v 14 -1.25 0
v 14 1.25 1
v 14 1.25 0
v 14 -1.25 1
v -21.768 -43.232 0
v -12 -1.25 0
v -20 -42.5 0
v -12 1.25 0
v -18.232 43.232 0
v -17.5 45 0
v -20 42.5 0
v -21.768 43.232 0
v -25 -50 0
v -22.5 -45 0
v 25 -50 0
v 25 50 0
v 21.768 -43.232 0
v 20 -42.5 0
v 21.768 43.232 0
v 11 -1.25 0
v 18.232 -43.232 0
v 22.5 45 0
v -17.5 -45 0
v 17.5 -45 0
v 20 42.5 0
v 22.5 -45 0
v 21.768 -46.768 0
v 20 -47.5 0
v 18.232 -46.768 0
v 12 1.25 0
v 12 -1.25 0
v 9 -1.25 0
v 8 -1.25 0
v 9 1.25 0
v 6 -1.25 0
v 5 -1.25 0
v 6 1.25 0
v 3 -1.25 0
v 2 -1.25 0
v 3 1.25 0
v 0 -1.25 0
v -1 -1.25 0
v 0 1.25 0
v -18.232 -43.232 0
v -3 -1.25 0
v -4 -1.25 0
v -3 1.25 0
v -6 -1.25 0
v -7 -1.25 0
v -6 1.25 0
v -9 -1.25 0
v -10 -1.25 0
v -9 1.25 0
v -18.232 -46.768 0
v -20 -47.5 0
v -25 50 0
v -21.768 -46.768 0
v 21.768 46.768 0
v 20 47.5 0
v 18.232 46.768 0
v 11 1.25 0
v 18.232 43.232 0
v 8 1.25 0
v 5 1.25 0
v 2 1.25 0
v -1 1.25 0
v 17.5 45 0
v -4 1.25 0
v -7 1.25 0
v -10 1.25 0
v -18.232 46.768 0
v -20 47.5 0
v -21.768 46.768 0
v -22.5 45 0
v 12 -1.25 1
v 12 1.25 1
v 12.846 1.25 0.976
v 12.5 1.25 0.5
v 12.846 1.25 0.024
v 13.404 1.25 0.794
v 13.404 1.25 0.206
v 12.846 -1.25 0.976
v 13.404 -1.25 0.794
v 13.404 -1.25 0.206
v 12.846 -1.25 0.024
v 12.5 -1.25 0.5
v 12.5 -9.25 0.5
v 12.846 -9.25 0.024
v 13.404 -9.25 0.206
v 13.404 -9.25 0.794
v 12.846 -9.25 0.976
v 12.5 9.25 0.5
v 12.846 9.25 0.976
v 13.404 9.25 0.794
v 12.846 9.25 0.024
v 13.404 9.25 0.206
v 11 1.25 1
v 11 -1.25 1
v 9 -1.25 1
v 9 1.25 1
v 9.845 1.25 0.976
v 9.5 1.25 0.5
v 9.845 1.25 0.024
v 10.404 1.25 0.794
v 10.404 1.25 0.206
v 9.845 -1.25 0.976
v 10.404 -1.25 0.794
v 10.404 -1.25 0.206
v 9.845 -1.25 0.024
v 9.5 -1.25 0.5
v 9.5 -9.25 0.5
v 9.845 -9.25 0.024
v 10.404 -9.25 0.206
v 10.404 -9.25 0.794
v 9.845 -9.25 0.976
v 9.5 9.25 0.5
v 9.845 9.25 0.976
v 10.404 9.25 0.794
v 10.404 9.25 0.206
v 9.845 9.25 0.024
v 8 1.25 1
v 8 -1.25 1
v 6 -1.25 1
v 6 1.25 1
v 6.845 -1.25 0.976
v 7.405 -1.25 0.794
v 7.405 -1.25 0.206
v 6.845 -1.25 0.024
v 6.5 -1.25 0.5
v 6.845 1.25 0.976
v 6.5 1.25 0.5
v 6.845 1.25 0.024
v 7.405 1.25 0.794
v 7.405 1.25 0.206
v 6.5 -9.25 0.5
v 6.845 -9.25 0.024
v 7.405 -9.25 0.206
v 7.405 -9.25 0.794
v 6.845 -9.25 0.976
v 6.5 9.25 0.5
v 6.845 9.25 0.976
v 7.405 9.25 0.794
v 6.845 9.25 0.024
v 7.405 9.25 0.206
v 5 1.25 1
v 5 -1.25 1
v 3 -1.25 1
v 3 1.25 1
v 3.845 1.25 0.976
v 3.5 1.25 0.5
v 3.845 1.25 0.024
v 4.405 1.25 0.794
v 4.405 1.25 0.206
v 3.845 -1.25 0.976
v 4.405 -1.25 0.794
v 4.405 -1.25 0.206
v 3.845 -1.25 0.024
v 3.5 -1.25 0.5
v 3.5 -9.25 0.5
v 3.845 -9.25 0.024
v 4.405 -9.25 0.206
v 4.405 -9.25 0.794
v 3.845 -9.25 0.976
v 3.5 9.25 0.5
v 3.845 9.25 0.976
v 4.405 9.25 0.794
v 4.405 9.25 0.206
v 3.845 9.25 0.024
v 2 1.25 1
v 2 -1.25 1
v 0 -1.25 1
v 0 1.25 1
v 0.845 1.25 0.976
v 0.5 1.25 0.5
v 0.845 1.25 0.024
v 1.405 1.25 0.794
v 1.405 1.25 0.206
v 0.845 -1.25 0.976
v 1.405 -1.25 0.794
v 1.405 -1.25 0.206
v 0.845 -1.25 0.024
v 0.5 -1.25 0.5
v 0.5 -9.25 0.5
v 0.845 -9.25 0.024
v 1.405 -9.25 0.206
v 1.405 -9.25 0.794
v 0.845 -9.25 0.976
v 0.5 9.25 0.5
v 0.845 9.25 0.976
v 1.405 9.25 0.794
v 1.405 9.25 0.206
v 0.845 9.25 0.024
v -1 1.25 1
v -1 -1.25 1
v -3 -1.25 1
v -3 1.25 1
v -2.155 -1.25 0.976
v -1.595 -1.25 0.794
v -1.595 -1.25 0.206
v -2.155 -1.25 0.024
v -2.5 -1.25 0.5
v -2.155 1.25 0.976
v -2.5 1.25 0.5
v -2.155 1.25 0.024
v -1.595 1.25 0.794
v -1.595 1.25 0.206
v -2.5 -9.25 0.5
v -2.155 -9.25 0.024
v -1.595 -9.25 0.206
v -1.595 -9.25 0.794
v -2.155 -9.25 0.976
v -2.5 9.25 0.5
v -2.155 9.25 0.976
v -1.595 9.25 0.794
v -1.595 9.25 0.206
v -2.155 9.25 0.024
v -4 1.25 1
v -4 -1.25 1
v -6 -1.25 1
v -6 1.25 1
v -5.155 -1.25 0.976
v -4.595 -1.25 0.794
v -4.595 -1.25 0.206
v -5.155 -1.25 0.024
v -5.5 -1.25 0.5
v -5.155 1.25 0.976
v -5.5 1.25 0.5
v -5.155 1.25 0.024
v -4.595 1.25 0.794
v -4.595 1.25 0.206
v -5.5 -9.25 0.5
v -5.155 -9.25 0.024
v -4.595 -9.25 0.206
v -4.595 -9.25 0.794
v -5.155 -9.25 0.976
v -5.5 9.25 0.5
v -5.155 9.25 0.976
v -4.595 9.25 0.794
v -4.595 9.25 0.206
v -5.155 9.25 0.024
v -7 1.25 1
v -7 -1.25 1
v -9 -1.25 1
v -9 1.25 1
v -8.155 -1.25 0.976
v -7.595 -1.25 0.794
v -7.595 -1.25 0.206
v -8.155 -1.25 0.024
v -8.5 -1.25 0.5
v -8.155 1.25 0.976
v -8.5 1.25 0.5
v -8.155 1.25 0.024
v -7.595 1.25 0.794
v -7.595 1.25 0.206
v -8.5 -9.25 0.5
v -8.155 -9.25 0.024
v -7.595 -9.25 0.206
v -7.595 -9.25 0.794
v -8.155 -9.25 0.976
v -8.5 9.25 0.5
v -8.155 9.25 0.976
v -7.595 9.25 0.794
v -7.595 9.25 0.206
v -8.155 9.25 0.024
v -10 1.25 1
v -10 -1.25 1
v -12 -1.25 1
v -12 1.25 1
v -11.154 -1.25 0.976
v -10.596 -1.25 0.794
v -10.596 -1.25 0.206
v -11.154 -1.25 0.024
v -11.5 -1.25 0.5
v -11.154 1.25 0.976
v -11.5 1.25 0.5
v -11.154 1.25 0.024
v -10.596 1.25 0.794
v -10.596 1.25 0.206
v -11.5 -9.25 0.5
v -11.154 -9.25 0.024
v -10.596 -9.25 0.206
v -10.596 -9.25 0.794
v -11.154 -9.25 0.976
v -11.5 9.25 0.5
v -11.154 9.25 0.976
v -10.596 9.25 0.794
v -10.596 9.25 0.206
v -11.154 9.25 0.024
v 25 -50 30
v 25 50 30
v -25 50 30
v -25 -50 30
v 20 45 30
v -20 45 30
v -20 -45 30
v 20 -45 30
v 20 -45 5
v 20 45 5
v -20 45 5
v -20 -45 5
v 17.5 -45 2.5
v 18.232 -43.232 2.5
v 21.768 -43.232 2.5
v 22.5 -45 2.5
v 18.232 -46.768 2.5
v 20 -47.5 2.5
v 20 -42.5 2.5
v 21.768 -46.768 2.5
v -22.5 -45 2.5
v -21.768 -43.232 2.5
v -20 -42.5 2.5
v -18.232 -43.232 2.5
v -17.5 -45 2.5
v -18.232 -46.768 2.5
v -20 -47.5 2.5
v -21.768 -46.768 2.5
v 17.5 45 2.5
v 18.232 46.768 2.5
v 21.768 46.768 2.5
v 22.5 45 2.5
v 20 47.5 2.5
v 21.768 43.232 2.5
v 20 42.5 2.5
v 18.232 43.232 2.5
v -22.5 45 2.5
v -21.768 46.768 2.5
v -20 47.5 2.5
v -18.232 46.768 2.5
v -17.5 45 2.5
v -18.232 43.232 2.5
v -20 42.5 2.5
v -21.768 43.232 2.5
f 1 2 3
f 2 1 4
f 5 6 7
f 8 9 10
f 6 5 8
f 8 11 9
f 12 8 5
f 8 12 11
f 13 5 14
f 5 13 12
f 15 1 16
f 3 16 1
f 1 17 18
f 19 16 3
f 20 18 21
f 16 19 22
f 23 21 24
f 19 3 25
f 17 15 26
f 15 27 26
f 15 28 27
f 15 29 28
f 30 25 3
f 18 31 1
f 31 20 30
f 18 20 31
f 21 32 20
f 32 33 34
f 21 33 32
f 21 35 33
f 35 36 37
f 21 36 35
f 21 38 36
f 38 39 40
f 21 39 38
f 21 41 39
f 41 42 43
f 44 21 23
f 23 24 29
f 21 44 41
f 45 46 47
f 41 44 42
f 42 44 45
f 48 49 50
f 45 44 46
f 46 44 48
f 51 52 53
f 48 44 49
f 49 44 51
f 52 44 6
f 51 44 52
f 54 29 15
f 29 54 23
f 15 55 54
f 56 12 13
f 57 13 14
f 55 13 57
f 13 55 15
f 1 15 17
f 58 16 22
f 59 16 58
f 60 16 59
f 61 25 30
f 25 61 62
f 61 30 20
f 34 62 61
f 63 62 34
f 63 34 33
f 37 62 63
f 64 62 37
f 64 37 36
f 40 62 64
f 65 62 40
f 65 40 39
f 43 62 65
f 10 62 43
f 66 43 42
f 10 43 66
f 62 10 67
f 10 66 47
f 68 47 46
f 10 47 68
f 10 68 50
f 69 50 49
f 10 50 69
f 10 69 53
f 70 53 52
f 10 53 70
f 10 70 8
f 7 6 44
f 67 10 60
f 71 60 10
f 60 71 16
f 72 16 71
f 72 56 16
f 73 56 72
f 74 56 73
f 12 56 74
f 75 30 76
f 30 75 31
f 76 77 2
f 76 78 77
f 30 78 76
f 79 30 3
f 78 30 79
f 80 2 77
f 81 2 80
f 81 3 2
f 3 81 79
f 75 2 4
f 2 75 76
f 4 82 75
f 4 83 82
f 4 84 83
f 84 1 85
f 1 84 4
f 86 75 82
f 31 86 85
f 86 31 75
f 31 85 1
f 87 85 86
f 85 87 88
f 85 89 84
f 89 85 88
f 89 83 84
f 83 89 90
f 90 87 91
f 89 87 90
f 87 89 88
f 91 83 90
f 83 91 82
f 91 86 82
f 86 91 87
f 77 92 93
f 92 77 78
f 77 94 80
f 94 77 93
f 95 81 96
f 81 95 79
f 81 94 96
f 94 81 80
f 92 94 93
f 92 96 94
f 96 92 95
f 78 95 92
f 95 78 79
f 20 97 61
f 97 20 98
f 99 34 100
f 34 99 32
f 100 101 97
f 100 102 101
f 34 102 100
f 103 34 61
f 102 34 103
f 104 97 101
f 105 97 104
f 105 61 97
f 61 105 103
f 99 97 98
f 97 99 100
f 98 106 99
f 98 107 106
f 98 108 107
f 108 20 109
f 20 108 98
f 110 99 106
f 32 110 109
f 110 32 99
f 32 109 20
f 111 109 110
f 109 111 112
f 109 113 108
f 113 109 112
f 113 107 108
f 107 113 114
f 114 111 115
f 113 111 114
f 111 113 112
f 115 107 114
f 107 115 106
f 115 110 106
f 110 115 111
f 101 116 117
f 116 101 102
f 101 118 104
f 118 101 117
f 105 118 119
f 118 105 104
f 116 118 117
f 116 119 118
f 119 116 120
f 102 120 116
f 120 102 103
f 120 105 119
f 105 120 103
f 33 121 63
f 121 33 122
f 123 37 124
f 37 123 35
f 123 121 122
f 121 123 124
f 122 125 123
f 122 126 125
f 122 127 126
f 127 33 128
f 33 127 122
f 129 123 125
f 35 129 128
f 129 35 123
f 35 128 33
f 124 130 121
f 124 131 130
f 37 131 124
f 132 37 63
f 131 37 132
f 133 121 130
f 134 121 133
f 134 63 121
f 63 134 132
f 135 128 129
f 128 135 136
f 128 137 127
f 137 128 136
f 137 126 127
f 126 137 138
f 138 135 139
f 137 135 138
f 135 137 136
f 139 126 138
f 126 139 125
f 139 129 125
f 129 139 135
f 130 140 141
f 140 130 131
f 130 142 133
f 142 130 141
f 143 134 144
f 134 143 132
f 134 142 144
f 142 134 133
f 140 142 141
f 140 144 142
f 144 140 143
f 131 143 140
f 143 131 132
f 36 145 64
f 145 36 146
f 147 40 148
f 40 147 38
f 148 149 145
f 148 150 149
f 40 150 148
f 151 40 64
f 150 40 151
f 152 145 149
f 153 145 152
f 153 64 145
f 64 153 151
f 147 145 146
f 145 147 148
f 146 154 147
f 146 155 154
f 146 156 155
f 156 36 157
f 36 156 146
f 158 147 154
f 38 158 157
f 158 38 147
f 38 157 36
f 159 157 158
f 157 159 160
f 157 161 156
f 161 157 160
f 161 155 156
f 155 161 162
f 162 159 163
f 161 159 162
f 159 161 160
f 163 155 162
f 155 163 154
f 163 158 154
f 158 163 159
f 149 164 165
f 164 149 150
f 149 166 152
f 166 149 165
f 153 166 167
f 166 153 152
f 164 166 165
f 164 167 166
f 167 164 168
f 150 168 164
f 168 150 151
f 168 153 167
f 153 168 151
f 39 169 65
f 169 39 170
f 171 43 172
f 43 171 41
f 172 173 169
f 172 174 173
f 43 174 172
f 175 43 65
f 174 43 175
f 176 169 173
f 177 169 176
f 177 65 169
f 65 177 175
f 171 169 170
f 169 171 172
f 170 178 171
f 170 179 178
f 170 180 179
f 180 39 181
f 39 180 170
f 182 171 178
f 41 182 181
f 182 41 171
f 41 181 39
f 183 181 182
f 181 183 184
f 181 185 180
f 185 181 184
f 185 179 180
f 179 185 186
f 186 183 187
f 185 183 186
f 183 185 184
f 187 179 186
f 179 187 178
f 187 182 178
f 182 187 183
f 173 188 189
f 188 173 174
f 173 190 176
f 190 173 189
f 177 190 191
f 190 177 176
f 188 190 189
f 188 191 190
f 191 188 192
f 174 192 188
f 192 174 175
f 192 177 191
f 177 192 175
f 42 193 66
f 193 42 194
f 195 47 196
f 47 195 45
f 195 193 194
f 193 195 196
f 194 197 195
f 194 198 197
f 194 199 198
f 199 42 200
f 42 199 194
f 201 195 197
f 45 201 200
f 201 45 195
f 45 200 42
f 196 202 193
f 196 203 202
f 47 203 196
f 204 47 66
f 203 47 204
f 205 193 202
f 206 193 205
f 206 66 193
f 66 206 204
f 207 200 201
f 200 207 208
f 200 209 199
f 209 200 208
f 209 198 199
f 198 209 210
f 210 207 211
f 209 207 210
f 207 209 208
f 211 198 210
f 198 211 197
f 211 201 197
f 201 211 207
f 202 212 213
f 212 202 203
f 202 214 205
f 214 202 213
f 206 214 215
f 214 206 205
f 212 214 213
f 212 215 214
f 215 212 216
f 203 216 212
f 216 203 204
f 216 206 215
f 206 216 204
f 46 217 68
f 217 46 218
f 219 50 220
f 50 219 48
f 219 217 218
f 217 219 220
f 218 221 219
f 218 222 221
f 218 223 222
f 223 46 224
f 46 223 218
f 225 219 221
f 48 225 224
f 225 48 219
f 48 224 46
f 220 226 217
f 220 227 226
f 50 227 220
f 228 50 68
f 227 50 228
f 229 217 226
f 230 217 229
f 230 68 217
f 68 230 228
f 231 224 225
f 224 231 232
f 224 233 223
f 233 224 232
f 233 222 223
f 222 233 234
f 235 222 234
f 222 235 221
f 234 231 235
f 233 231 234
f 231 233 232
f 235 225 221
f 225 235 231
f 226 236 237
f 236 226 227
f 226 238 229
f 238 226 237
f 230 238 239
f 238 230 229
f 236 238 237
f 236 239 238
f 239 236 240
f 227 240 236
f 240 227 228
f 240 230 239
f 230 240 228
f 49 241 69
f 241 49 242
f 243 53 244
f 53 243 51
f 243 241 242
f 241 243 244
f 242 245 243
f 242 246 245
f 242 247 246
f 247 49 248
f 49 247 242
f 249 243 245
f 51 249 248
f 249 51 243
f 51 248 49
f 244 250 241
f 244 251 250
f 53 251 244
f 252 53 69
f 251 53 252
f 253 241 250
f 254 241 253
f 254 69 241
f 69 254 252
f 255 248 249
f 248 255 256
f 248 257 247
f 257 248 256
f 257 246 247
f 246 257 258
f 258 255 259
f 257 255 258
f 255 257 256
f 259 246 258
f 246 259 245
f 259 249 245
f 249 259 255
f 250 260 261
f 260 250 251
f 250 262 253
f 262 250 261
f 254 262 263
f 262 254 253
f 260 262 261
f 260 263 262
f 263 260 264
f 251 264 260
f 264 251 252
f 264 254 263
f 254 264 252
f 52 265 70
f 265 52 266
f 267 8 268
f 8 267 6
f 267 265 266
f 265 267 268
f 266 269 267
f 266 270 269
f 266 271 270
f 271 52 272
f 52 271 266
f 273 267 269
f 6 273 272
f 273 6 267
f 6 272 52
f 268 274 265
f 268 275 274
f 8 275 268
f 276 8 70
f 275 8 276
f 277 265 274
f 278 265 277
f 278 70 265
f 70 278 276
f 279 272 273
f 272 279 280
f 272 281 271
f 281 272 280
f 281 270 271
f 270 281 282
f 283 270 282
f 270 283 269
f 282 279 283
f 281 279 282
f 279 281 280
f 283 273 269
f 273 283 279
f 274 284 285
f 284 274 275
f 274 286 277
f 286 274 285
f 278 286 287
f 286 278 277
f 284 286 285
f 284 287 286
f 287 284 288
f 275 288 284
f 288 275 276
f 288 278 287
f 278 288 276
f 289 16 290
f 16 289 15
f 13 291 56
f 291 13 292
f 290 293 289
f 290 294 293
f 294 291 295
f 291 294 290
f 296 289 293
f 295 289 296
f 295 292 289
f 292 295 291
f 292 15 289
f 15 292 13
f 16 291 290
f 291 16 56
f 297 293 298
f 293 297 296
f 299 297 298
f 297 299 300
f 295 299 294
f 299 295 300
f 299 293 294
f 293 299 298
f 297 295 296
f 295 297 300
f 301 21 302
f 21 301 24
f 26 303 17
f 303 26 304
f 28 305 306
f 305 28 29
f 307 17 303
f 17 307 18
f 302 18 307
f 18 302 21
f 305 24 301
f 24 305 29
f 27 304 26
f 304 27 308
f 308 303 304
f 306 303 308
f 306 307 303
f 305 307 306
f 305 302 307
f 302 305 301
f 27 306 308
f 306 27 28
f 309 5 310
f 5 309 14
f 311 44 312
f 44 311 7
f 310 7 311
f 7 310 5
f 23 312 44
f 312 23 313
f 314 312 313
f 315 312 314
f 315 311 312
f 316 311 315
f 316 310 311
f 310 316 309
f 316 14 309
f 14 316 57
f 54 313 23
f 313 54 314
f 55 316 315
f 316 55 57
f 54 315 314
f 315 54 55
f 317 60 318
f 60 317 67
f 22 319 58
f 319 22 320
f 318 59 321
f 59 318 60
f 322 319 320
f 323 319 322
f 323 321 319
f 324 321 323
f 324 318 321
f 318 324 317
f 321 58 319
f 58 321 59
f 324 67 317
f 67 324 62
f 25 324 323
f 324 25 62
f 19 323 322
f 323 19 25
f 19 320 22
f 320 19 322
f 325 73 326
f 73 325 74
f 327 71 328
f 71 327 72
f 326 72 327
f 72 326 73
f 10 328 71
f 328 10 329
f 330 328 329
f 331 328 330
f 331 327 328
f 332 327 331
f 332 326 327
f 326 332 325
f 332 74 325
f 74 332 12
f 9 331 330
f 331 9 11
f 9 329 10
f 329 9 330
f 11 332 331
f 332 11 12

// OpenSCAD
// file: ir_transistor.scad
module ir_transistor(x = 0, y = 0, z = 0)
{
    
    translate([x - (transistor_width / 2), 
               y - (transistor_depth / 2), 
               z])
        cube(size = [transistor_width, transistor_depth,                transistor_box_height]);
    
    translate([x, y, z + transistor_box_height])
        sphere(r = transistor_dome_radius);
    
    translate([x, 
               y - (transistor_depth / 2), 
               z + (transistor_box_height / 2)])
        rotate([90, 0, 0])
            cylinder(h = wire_length, 
                    r1 = wire_radius, 
                    r2 = wire_radius);
                    
    translate([x, y + (transistor_depth / 2), z + (transistor_box_height / 2)])
        rotate([270, 0, 0])
            cylinder(h = wire_length, 
                    r1 = wire_radius, 
                    r2 = wire_radius);
    
} /* End ir_transistor */
// file: led.scad
module led(x = 0, y = 0, z = 0)
{

    // Led box.
    translate([x, y - (led_depth / 2), z]) 
        cube(size = [led_width, 
            led_depth, 
            led_cyl_height]);
    
    // Led cylinder.
    translate([x + (led_width / 2), 
            y, 
            z + led_cyl_height])
        cylinder(h = led_cyl_height, 
            r1 = led_radius, 
            r2 = led_radius);
    
    // Led Anode.
    translate([x + (led_width / 2), 
            y - (led_depth / 4), 
            z  - anode_length])
        cylinder(h = anode_length, r1 = wire_radius, r2 = wire_radius, center = false);
    
    // Led Cathode.
    translate([x + (led_width / 2), 
            y + (led_depth / 4), 
            z + -cathode_length])
        cylinder(h = cathode_length, r1 = wire_radius, r2 = wire_radius, center = false);
    
} /* End led */
// file: dimensions.scad
box_width = 50;
box_height = 30;
box_depth = 100;
box_left = -(box_width / 2);
box_right = -box_left;
box_front = -(box_depth / 2);
box_back = -box_front;    

bridge_depth = 20;
ridge_width = 5;

slid_width = 28;
slid_height = 2;
slid_length = (box_depth / 2) - bridge_depth;

peg_height = 5;

lid_height = 2.5;

led_width = 2.5;
led_depth = 5;
led_box_height = 3.2;
led_cyl_height = 4.8;
anode_length = 28;
cathode_length = 29;
led_radius = 1;
wire_radius = 0.5;

corner = ridge_width / 2;

transistor_width = 2;
transistor_depth = 2.5;
transistor_box_height = 1;
transistor_dome_height = 2;
transistor_dome_radius = 0.75;
wire_length = 8;
wire_radius = 0.5;
// main file
include <dimensions.scad>
include <led.scad>
include <ir_transistor.scad>

// Bottom part of the device.
rotate(a=[0,180,0])
translate([0, 0, -box_height])
difference()
{
    
    // Outside box.
    translate([box_left, 
               box_front, 
               0])
        cube(size = [box_width, 
             box_depth, 
             box_height]);
     
    // Hollow out box.
    translate([box_left + ridge_width,
              box_front + ridge_width, 
              0])
        cube(size = [box_width - 2* ridge_width, 
              box_depth - 2 * ridge_width,
              box_height - ridge_width]);

    // Put IR Transistors.
    for (x = [ -(slid_width / 2) + 1: 3 : (slid_width / 2) - 1])
    {
        ir_transistor(x, 
                0, 
                box_height - transistor_box_height);
        
    }
    
    // Leave holes for top-part pegs.
    translate([box_left + corner + corner,
            box_front + corner + corner,
            box_height - corner])
        cylinder(h = peg_height, 
            r1 = corner, 
            r2 = corner);

    translate([box_right - corner - corner,
            box_front + corner + corner,
            box_height - corner])
        cylinder(h = peg_height, 
            r1 = corner, 
            r2 = corner);

    translate([box_left + corner + corner,
            box_back - corner - corner,
            box_height- corner])
        cylinder(h = peg_height, 
            r1 = corner, 
            r2 = corner);

    translate([box_right - corner - corner,
            box_back - corner - corner,
            box_height - corner])
        cylinder(h = peg_height, 
            r1 = corner, 
            r2 = corner);
            
}
